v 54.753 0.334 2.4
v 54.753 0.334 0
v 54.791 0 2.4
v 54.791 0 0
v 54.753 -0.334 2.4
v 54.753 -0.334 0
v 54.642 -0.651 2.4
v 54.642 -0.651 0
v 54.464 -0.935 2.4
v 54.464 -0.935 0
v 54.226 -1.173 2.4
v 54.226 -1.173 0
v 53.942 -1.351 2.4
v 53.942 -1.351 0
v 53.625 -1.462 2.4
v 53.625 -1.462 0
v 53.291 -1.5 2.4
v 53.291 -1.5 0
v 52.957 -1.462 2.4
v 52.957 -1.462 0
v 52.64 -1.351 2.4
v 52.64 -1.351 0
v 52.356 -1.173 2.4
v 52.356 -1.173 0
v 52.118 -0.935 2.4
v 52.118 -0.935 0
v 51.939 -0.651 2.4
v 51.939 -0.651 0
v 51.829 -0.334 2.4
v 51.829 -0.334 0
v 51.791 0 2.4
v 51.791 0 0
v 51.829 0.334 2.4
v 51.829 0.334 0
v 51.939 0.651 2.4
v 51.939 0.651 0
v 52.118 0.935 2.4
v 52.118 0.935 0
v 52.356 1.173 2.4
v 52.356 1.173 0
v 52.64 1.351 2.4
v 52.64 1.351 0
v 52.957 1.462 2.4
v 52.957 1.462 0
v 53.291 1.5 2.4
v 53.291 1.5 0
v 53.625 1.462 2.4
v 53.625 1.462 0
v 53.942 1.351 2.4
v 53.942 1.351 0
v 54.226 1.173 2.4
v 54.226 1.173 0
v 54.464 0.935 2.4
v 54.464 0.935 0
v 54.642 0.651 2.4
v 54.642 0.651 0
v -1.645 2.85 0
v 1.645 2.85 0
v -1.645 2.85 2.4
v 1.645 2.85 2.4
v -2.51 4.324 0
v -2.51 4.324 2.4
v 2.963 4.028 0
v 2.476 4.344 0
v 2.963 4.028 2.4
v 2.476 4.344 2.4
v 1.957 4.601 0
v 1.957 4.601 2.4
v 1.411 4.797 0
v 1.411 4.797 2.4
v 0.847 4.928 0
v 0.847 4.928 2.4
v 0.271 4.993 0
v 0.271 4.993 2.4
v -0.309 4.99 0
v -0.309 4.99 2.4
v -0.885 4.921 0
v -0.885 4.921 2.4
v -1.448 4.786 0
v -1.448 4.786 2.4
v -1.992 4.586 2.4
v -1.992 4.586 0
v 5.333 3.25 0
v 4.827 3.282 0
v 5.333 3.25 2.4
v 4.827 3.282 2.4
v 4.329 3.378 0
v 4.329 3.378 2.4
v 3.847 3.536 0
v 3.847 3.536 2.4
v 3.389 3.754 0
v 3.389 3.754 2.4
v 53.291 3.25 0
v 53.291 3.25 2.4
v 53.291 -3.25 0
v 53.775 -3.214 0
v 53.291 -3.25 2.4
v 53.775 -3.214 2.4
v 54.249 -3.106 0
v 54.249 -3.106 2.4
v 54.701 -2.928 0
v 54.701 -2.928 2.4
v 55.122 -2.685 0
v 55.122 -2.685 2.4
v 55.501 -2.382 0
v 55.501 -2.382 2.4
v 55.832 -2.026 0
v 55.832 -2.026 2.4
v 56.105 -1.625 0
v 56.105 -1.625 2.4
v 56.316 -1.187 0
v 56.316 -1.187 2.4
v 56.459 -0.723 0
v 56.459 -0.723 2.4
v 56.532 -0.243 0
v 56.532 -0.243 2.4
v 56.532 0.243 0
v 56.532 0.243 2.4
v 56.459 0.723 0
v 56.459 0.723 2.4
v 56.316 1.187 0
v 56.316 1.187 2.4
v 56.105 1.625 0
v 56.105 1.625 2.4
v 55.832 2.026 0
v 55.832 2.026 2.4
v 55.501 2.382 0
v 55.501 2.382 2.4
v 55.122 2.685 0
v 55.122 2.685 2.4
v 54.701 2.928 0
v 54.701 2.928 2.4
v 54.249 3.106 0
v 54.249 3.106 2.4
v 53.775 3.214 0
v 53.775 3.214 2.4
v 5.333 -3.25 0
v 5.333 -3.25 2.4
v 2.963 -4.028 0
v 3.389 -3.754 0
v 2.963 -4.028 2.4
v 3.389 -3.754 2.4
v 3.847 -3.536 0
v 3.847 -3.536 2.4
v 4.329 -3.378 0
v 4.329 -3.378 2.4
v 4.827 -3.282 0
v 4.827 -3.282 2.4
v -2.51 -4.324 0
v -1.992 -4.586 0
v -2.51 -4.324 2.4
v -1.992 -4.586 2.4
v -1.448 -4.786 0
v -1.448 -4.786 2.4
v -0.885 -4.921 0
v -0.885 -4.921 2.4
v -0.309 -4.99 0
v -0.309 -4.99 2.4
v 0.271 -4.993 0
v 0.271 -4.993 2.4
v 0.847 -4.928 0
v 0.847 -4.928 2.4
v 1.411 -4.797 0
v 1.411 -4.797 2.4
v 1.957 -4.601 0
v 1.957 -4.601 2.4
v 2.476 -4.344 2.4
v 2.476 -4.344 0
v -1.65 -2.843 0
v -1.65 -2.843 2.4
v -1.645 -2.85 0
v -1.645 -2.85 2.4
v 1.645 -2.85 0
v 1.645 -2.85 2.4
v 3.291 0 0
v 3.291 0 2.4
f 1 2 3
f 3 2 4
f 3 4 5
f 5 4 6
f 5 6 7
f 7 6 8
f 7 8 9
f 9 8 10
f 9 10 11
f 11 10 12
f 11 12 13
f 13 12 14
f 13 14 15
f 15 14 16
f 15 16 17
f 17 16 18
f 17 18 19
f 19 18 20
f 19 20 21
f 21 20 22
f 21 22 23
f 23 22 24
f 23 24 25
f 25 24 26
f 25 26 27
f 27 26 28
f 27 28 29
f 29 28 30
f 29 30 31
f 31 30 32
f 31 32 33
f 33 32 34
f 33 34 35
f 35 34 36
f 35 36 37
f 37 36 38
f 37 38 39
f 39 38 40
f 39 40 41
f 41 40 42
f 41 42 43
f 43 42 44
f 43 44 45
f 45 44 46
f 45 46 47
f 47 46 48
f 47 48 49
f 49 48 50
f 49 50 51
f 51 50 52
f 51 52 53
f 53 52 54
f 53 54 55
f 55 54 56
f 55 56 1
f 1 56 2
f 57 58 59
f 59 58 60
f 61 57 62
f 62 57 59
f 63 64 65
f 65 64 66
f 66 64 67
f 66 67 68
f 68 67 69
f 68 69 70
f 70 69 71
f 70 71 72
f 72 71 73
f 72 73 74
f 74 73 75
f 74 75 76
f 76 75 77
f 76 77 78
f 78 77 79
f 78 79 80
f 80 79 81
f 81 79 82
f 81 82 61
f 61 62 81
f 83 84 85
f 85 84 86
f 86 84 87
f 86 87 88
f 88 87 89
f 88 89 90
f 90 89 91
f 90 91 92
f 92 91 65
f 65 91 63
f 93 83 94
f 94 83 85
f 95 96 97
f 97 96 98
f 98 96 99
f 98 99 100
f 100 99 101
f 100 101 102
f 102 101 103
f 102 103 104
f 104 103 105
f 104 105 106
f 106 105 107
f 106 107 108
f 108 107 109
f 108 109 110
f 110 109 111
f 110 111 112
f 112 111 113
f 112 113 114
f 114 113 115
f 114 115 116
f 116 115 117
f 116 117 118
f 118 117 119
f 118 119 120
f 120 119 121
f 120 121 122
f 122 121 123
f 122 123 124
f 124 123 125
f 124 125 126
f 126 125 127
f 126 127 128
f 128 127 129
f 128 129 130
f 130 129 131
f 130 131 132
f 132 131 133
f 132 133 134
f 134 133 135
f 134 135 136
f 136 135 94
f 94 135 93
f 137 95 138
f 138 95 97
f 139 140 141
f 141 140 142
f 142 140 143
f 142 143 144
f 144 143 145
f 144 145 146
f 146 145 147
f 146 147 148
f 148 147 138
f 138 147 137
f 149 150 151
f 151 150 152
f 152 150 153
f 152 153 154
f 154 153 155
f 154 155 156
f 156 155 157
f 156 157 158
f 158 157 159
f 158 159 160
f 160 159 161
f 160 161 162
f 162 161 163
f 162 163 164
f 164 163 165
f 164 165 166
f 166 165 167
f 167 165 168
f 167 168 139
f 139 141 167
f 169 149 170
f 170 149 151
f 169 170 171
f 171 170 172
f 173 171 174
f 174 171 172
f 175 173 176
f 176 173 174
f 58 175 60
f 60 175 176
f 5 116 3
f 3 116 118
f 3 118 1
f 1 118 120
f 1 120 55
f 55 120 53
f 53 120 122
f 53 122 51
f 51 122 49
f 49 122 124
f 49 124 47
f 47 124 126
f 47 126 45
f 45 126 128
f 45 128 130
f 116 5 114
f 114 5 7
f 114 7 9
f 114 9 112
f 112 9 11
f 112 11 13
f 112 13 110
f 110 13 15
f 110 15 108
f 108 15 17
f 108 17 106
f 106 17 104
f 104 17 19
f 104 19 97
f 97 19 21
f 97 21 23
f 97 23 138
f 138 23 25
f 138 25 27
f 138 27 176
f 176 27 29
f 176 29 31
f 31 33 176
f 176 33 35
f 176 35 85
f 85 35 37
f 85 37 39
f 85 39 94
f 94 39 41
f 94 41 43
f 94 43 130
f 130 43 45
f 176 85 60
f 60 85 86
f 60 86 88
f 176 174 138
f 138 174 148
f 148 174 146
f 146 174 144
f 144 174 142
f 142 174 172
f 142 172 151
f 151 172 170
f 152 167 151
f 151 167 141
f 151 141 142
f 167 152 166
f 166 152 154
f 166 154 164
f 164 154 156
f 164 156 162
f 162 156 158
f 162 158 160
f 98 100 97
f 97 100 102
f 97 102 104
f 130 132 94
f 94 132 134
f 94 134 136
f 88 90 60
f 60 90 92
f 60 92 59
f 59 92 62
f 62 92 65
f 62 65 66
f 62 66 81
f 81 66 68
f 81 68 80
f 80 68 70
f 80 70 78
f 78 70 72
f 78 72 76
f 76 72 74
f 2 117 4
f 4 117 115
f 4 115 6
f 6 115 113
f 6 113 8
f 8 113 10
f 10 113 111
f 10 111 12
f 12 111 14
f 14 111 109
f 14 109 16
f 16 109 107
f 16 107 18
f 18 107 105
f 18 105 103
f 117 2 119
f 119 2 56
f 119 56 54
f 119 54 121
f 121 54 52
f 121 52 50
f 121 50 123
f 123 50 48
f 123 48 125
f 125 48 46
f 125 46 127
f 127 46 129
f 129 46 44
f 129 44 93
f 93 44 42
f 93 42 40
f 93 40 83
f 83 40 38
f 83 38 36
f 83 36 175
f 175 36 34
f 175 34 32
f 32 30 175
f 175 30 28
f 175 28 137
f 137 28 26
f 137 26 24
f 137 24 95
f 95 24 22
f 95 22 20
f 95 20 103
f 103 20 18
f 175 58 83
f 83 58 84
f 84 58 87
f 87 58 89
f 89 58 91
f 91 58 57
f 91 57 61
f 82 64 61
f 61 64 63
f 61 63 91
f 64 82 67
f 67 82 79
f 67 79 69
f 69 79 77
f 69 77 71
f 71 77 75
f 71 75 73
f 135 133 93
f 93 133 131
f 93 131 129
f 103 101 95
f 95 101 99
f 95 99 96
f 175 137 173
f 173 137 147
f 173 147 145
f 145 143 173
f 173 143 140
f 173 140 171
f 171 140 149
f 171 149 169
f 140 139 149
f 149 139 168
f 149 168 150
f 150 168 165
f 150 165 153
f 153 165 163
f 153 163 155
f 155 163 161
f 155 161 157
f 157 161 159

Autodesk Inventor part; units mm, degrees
ref_plane "YZ Plane" through (0, 0, 0) normal (1, 0, 0) x (0, 1, 0)
ref_plane "XZ Plane" through (0, 0, 0) normal (0, 1, 0) x (-1, 0, 0)
ref_plane "XY Plane" through (0, 0, 0) normal (0, 0, 1) x (1, 0, 0)
sketch "Sketch1" plane through (0, 0, 0) normal (0, 0, 1) x (1, 0, 0)
  line L0 (1.6454, 2.85) -> (3.2909, 0)
  line L1 (3.2909, 0) -> (1.6454, -2.85)
  line L2 (1.6454, -2.85) -> (-1.6454, -2.85)
  line L3 (-1.6454, -2.85) -> (-1.6498, -2.8425)
  line L4 (-1.6454, 2.85) -> (1.6454, 2.85)
  line L5 (-1.6454, 2.85) -> (-2.5099, 4.3244)
  line L6 (-1.6498, -2.8425) -> (-2.5099, -4.3244)
  line L7 (3.2909, 0) -> (53.2909, 0) construction
  line L8 (5, 0) -> (53.2909, 0) construction
  line L9 (5.3327, -3.25) -> (53.2909, -3.25)
  line L10 (53.2909, 3.25) -> (5.3327, 3.25)
  arc A0 (53.2909, -3.25) -> (53.2909, 3.25) centre (53.2909, 0) ccw
  arc A1 (-2.5099, -4.3244) -> (2.9626, -4.0278) centre (0, 0) ccw
  arc A2 (2.9626, 4.0278) -> (-2.5099, 4.3244) centre (0, 0) ccw
  arc A3 (2.9626, 4.0278) -> (5.3327, 3.25) centre (5.3327, 7.25) ccw
  arc A4 (5.3327, -3.25) -> (2.9626, -4.0278) centre (5.3327, -7.25) ccw
  circle A5 centre (53.2909, 0) radius 1.5
  point P0 (3.7997, 3.25)
  point P1 (29.1454, 0)
  point P2 (3.7997, -3.25)
  dimension "d0" = 5.7
  dimension "d2" = 50
  dimension "d3" = 6.5
  dimension "d4" = 4
  dimension "d5" = 3
extrude "Extrusion1" add sketch "Sketch1" along normal blind 2.4
properties part number "1pcs-m4-wrench"
